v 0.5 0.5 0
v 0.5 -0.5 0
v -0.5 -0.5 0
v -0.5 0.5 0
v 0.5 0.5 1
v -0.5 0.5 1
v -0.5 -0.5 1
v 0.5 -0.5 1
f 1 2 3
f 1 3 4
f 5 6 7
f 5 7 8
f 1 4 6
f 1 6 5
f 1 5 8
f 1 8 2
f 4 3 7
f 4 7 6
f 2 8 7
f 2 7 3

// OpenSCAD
module Cube () {
polyhedron (
points = [
[0.5, 0.5, 0],
[-0.5, 0.5, 0],
[-0.5, -0.5, 0],
[0.5, -0.5, 0],
[0.5, 0.5, 1],
[0.5, -0.5, 1],
[-0.5, -0.5, 1],
[-0.5, 0.5, 1],
],
faces = [
[0, 3, 2, 1],
[4, 7, 6, 5],
[0, 1, 7, 4],
[0, 4, 5, 3],
[1, 2, 6, 7],
[3, 5, 6, 2],
]);
}

Cube ();
